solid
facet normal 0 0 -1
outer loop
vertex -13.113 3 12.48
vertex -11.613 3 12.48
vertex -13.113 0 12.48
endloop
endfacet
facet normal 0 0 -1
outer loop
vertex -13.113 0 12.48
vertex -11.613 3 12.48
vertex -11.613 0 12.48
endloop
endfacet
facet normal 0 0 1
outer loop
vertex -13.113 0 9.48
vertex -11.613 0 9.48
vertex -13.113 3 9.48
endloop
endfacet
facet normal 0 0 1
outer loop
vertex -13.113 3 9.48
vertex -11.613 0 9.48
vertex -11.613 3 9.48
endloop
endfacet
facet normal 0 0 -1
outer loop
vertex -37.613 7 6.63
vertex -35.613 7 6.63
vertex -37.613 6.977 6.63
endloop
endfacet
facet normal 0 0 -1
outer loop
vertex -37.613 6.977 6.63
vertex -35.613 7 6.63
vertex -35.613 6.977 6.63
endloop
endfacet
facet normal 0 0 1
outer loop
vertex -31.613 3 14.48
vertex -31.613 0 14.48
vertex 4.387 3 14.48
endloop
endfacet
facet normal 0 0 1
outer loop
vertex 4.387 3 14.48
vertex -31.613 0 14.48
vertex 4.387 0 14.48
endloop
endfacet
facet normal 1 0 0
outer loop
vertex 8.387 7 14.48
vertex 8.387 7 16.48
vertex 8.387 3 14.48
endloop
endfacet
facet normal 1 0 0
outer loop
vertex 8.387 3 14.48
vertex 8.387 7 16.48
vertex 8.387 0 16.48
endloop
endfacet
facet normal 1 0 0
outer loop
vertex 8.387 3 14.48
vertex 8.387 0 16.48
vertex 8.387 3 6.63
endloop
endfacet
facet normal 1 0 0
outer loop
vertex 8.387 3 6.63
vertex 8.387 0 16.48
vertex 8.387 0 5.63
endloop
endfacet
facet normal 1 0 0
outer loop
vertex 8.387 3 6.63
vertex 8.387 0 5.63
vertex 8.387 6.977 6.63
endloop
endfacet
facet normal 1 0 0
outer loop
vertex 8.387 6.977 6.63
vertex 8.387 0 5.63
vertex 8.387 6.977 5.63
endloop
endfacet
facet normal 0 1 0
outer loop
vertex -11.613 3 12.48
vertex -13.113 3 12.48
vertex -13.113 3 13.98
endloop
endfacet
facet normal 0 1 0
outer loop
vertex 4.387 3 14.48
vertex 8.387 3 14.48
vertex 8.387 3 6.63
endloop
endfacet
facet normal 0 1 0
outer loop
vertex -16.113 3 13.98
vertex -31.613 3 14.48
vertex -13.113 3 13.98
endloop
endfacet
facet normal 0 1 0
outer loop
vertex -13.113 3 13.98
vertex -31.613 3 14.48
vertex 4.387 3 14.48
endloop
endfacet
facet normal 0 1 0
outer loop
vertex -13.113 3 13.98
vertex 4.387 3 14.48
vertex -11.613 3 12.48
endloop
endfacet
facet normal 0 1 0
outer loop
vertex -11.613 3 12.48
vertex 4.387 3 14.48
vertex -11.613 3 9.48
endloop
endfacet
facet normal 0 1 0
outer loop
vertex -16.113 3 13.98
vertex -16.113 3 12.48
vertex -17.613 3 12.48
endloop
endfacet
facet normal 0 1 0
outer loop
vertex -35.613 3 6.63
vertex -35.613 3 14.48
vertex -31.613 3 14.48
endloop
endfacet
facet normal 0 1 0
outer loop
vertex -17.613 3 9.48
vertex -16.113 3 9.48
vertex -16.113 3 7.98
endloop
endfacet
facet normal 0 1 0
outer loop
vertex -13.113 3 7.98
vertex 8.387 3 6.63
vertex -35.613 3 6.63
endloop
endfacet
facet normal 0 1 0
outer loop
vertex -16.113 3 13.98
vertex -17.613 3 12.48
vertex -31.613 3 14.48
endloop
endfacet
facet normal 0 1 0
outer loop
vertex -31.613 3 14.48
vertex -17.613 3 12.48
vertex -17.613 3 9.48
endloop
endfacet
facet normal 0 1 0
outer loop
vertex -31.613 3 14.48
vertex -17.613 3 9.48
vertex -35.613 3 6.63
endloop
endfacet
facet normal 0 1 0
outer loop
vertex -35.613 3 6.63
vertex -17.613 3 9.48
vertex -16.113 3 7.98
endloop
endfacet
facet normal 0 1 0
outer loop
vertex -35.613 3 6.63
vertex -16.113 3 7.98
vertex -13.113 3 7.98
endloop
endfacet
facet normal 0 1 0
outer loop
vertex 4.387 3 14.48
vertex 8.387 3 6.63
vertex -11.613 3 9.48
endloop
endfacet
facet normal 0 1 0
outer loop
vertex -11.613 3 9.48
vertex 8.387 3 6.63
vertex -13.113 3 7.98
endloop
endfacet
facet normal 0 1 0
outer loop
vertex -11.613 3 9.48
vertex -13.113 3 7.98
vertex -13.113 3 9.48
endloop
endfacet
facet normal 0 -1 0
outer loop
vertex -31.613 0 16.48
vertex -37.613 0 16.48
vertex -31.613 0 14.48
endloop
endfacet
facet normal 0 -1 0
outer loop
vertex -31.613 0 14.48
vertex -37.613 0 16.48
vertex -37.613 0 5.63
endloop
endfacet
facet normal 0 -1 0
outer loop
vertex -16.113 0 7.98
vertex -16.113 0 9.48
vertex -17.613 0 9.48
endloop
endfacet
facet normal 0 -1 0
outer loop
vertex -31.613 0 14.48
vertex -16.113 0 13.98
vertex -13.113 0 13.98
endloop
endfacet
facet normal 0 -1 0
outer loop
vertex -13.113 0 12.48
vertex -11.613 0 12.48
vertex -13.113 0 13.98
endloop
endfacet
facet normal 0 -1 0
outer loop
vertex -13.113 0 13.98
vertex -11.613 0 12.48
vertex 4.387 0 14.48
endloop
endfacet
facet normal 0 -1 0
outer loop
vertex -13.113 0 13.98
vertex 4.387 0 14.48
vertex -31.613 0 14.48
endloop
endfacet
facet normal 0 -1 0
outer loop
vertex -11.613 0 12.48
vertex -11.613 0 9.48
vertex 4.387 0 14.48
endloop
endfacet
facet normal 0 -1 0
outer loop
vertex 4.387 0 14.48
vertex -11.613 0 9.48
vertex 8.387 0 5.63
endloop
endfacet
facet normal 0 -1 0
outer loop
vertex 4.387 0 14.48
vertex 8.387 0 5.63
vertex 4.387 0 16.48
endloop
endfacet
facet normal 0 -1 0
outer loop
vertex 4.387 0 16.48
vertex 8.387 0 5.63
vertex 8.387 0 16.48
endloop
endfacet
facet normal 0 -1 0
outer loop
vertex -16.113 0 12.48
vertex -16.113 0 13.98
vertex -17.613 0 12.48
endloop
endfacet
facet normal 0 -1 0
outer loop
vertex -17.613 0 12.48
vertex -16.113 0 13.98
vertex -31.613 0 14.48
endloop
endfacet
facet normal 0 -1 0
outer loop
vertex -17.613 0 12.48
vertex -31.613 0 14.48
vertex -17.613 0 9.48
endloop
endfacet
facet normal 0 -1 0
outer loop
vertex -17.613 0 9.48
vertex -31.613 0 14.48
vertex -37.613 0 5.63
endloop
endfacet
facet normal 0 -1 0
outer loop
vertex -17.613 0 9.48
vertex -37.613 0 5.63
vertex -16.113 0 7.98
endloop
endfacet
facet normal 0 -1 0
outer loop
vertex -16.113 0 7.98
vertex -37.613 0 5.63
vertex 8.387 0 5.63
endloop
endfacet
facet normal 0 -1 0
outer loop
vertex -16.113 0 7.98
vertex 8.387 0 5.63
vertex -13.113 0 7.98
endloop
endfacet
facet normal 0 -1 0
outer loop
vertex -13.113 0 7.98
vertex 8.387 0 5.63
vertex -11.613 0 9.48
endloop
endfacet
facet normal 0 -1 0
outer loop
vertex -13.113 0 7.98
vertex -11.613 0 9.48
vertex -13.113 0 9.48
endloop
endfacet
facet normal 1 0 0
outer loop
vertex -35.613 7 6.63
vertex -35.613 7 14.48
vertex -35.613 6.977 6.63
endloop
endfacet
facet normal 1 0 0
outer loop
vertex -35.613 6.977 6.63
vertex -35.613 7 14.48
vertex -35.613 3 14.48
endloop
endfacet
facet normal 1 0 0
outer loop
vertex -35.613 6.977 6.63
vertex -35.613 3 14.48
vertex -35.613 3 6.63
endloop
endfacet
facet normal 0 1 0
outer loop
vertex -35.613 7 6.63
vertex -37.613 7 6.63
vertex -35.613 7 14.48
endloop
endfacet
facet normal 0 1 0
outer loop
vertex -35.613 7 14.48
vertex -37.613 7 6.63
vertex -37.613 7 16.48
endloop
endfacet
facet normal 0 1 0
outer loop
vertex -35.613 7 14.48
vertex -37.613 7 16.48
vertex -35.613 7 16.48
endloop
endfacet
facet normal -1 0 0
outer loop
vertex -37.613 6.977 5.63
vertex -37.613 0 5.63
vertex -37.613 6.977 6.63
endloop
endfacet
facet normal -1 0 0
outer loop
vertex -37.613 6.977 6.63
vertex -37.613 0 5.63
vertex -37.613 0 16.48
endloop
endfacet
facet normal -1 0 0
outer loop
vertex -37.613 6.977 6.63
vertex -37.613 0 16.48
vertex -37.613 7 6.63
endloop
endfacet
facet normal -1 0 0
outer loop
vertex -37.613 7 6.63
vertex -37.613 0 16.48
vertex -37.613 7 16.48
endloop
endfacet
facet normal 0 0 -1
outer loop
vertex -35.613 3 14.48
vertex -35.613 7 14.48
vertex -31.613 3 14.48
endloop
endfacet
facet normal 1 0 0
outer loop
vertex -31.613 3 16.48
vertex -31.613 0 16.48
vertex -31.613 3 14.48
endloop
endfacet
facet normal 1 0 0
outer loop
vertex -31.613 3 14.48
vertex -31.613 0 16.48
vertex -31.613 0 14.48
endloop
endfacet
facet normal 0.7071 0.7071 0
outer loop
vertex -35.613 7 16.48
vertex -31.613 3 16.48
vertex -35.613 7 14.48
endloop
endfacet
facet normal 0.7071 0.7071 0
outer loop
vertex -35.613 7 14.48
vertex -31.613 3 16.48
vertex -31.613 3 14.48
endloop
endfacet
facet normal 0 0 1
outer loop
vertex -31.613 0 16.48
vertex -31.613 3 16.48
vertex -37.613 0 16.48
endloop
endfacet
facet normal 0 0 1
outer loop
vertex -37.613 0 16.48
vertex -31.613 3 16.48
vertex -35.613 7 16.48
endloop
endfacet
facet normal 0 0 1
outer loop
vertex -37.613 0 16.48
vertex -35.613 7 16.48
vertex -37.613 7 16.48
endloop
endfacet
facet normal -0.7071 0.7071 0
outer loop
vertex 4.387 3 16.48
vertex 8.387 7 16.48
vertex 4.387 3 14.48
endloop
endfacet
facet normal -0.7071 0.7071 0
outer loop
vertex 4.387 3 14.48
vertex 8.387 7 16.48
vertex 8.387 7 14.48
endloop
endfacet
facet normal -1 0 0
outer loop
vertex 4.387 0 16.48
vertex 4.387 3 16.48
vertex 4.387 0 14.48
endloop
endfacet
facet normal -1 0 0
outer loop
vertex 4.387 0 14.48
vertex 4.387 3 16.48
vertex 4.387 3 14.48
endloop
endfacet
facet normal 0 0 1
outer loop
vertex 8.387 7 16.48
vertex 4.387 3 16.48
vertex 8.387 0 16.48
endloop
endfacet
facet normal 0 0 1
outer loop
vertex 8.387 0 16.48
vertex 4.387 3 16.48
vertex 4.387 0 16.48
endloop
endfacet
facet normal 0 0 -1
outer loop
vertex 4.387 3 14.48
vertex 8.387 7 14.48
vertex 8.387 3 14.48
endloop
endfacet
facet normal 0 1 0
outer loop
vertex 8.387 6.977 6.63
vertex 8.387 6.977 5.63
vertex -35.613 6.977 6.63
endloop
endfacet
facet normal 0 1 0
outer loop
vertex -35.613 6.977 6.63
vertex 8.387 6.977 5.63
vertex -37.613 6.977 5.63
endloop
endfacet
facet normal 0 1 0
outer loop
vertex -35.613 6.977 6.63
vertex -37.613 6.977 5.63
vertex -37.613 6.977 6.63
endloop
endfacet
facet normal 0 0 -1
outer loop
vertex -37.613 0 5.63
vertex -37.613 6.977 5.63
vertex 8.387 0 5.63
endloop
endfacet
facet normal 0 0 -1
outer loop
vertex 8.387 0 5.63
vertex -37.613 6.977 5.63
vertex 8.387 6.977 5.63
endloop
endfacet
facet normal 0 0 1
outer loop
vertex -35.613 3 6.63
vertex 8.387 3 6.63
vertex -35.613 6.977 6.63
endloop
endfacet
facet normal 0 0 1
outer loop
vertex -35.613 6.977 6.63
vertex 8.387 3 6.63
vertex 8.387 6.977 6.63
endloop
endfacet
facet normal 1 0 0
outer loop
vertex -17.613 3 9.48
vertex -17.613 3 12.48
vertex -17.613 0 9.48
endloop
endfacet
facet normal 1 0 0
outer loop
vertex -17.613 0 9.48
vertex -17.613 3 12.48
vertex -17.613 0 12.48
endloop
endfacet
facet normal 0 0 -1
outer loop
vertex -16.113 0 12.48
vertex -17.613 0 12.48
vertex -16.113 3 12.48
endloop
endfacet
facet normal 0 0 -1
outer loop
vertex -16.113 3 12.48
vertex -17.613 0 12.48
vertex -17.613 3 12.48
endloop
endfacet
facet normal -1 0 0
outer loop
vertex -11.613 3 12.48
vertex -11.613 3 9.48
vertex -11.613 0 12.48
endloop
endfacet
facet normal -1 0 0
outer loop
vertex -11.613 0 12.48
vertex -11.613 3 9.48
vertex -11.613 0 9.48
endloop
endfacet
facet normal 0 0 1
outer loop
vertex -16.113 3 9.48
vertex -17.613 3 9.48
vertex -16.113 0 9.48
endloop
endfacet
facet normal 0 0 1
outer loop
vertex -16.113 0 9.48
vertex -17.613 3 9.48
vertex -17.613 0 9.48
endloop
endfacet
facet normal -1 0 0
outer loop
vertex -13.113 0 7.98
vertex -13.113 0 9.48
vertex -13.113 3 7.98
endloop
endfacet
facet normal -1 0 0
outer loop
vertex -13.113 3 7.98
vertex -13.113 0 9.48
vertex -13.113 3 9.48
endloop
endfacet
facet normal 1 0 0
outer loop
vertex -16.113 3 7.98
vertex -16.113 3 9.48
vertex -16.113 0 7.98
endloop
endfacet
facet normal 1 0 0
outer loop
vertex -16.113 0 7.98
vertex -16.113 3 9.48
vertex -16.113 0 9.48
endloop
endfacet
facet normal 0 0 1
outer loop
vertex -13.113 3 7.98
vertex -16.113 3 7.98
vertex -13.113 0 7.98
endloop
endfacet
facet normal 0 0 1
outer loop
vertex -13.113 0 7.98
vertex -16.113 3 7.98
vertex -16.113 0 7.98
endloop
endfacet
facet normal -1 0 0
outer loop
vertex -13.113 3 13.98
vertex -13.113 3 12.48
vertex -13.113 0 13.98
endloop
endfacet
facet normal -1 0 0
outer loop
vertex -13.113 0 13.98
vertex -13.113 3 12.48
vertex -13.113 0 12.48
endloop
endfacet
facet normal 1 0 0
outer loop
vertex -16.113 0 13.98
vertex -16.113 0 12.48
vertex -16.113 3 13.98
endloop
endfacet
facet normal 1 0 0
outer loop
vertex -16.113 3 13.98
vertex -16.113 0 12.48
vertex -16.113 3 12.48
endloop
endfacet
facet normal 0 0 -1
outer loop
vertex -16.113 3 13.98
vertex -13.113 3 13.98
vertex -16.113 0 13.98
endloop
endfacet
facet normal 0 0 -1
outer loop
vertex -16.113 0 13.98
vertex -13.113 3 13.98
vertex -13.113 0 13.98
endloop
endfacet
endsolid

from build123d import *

# Parameters (mm, degrees)
SKETCH_1_W          = 44
SKETCH_1_H          = 7.85
EXTRUDE_1_DEPTH     = 3
SKETCH_2_W          = 7.85
SKETCH_2_H          = 7
EXTRUDE_2_DEPTH     = 2
EXTRUDE_3_DEPTH     = 2
EXTRUDE_4_DEPTH     = 2
SKETCH_5_W          = 46
SKETCH_5_H          = 6.976539996
EXTRUDE_5_DEPTH     = 1
SKETCH_6_W          = 6
SKETCH_6_H          = 3
CUT_EXTRUDE_3_DEPTH = 3
SKETCH_8_W          = 3
SKETCH_8_H          = 6
CUT_EXTRUDE_4_DEPTH = 3


with BuildPart() as part:
    # 草图1 → 凸台-拉伸1 (new body)
    with BuildSketch(Plane(origin=(0, 0, 0), x_dir=(1, 0, 0), z_dir=(0, 1, 0))):
        with Locations((-13.612906347, -10.55497291)):
            Rectangle(SKETCH_1_W, SKETCH_1_H)
    extrude(amount=EXTRUDE_1_DEPTH)

    # 草图2 → 凸台-拉伸2 (add)
    with BuildSketch(Plane.ZY.offset(35.612906347)):
        with Locations((10.55497291, 3.5)):
            Rectangle(SKETCH_2_W, SKETCH_2_H)
    extrude(amount=EXTRUDE_2_DEPTH)

    # 草图3 → 凸台-拉伸3 (add)
    with BuildSketch(Plane.XY.offset(14.47997291)):
        Polygon((-35.612906347, 7), (-31.612906347, 3), (-31.612906347, 0), (-35.612906347, 0), (-37.612906347, 0), (-37.612906347, 7), align=None)
    extrude(amount=EXTRUDE_3_DEPTH)

    # 草图4 → 凸台-拉伸4 (add)
    with BuildSketch(Plane.XY.offset(14.47997291)):
        Polygon((8.387093653, 0), (8.387093653, 7), (4.387093653, 3), (4.387093653, 0), align=None)
    extrude(amount=EXTRUDE_4_DEPTH)

    # 草图5 → 凸台-拉伸5 (add)
    with BuildSketch(Plane(origin=(0, 0, 6.62997291), x_dir=(-1, 0, 0), z_dir=(0, 0, -1))):
        with Locations((14.612906347, 3.488269998)):
            Rectangle(SKETCH_5_W, SKETCH_5_H)
    extrude(amount=EXTRUDE_5_DEPTH)

    # 草图6 → 切除-拉伸3 (cut)
    with BuildSketch(Plane.XZ):
        with Locations((-14.612906347, 10.97997291)):
            Rectangle(SKETCH_6_W, SKETCH_6_H)
    extrude(amount=-CUT_EXTRUDE_3_DEPTH, mode=Mode.SUBTRACT)

    # 草图8 → 切除-拉伸4 (cut)
    with BuildSketch(Plane.XZ):
        with Locations((-14.612906347, 10.97997291)):
            Rectangle(SKETCH_8_W, SKETCH_8_H)
    extrude(amount=-CUT_EXTRUDE_4_DEPTH, mode=Mode.SUBTRACT)


solid = part.part
